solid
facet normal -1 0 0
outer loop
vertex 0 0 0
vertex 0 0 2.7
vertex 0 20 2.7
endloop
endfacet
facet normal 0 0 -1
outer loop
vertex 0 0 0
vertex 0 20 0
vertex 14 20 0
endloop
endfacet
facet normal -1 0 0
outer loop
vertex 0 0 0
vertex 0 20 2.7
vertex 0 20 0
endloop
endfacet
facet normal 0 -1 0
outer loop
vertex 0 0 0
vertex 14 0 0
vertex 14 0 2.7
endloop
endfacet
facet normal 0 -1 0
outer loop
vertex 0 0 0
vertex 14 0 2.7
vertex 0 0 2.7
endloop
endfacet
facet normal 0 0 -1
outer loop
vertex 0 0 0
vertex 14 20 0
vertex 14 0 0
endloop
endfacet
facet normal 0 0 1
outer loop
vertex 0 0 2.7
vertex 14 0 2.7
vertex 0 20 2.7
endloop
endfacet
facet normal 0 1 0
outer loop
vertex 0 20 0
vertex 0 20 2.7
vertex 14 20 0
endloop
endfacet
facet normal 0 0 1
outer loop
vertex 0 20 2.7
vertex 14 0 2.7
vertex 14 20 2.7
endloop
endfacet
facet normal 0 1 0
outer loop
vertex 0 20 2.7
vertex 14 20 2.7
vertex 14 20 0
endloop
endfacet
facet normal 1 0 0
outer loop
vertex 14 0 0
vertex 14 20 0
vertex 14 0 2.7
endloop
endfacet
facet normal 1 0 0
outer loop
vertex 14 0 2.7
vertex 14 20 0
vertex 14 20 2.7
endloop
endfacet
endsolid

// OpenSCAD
/* Warning, this is a very basic generator with a lot of approximation 
input data : [QFP, TSX, 14x20x2.7mm, 100, , A, C04-17038A]
generated by com.zoubworld.electronics.cad.model3d.Basic
Date : Sun Feb 15 10:50:49 CET 2026
*/

//body
color("black")
translate([0,0,0])
cube([14.0,20.0,2.7], center=false);
